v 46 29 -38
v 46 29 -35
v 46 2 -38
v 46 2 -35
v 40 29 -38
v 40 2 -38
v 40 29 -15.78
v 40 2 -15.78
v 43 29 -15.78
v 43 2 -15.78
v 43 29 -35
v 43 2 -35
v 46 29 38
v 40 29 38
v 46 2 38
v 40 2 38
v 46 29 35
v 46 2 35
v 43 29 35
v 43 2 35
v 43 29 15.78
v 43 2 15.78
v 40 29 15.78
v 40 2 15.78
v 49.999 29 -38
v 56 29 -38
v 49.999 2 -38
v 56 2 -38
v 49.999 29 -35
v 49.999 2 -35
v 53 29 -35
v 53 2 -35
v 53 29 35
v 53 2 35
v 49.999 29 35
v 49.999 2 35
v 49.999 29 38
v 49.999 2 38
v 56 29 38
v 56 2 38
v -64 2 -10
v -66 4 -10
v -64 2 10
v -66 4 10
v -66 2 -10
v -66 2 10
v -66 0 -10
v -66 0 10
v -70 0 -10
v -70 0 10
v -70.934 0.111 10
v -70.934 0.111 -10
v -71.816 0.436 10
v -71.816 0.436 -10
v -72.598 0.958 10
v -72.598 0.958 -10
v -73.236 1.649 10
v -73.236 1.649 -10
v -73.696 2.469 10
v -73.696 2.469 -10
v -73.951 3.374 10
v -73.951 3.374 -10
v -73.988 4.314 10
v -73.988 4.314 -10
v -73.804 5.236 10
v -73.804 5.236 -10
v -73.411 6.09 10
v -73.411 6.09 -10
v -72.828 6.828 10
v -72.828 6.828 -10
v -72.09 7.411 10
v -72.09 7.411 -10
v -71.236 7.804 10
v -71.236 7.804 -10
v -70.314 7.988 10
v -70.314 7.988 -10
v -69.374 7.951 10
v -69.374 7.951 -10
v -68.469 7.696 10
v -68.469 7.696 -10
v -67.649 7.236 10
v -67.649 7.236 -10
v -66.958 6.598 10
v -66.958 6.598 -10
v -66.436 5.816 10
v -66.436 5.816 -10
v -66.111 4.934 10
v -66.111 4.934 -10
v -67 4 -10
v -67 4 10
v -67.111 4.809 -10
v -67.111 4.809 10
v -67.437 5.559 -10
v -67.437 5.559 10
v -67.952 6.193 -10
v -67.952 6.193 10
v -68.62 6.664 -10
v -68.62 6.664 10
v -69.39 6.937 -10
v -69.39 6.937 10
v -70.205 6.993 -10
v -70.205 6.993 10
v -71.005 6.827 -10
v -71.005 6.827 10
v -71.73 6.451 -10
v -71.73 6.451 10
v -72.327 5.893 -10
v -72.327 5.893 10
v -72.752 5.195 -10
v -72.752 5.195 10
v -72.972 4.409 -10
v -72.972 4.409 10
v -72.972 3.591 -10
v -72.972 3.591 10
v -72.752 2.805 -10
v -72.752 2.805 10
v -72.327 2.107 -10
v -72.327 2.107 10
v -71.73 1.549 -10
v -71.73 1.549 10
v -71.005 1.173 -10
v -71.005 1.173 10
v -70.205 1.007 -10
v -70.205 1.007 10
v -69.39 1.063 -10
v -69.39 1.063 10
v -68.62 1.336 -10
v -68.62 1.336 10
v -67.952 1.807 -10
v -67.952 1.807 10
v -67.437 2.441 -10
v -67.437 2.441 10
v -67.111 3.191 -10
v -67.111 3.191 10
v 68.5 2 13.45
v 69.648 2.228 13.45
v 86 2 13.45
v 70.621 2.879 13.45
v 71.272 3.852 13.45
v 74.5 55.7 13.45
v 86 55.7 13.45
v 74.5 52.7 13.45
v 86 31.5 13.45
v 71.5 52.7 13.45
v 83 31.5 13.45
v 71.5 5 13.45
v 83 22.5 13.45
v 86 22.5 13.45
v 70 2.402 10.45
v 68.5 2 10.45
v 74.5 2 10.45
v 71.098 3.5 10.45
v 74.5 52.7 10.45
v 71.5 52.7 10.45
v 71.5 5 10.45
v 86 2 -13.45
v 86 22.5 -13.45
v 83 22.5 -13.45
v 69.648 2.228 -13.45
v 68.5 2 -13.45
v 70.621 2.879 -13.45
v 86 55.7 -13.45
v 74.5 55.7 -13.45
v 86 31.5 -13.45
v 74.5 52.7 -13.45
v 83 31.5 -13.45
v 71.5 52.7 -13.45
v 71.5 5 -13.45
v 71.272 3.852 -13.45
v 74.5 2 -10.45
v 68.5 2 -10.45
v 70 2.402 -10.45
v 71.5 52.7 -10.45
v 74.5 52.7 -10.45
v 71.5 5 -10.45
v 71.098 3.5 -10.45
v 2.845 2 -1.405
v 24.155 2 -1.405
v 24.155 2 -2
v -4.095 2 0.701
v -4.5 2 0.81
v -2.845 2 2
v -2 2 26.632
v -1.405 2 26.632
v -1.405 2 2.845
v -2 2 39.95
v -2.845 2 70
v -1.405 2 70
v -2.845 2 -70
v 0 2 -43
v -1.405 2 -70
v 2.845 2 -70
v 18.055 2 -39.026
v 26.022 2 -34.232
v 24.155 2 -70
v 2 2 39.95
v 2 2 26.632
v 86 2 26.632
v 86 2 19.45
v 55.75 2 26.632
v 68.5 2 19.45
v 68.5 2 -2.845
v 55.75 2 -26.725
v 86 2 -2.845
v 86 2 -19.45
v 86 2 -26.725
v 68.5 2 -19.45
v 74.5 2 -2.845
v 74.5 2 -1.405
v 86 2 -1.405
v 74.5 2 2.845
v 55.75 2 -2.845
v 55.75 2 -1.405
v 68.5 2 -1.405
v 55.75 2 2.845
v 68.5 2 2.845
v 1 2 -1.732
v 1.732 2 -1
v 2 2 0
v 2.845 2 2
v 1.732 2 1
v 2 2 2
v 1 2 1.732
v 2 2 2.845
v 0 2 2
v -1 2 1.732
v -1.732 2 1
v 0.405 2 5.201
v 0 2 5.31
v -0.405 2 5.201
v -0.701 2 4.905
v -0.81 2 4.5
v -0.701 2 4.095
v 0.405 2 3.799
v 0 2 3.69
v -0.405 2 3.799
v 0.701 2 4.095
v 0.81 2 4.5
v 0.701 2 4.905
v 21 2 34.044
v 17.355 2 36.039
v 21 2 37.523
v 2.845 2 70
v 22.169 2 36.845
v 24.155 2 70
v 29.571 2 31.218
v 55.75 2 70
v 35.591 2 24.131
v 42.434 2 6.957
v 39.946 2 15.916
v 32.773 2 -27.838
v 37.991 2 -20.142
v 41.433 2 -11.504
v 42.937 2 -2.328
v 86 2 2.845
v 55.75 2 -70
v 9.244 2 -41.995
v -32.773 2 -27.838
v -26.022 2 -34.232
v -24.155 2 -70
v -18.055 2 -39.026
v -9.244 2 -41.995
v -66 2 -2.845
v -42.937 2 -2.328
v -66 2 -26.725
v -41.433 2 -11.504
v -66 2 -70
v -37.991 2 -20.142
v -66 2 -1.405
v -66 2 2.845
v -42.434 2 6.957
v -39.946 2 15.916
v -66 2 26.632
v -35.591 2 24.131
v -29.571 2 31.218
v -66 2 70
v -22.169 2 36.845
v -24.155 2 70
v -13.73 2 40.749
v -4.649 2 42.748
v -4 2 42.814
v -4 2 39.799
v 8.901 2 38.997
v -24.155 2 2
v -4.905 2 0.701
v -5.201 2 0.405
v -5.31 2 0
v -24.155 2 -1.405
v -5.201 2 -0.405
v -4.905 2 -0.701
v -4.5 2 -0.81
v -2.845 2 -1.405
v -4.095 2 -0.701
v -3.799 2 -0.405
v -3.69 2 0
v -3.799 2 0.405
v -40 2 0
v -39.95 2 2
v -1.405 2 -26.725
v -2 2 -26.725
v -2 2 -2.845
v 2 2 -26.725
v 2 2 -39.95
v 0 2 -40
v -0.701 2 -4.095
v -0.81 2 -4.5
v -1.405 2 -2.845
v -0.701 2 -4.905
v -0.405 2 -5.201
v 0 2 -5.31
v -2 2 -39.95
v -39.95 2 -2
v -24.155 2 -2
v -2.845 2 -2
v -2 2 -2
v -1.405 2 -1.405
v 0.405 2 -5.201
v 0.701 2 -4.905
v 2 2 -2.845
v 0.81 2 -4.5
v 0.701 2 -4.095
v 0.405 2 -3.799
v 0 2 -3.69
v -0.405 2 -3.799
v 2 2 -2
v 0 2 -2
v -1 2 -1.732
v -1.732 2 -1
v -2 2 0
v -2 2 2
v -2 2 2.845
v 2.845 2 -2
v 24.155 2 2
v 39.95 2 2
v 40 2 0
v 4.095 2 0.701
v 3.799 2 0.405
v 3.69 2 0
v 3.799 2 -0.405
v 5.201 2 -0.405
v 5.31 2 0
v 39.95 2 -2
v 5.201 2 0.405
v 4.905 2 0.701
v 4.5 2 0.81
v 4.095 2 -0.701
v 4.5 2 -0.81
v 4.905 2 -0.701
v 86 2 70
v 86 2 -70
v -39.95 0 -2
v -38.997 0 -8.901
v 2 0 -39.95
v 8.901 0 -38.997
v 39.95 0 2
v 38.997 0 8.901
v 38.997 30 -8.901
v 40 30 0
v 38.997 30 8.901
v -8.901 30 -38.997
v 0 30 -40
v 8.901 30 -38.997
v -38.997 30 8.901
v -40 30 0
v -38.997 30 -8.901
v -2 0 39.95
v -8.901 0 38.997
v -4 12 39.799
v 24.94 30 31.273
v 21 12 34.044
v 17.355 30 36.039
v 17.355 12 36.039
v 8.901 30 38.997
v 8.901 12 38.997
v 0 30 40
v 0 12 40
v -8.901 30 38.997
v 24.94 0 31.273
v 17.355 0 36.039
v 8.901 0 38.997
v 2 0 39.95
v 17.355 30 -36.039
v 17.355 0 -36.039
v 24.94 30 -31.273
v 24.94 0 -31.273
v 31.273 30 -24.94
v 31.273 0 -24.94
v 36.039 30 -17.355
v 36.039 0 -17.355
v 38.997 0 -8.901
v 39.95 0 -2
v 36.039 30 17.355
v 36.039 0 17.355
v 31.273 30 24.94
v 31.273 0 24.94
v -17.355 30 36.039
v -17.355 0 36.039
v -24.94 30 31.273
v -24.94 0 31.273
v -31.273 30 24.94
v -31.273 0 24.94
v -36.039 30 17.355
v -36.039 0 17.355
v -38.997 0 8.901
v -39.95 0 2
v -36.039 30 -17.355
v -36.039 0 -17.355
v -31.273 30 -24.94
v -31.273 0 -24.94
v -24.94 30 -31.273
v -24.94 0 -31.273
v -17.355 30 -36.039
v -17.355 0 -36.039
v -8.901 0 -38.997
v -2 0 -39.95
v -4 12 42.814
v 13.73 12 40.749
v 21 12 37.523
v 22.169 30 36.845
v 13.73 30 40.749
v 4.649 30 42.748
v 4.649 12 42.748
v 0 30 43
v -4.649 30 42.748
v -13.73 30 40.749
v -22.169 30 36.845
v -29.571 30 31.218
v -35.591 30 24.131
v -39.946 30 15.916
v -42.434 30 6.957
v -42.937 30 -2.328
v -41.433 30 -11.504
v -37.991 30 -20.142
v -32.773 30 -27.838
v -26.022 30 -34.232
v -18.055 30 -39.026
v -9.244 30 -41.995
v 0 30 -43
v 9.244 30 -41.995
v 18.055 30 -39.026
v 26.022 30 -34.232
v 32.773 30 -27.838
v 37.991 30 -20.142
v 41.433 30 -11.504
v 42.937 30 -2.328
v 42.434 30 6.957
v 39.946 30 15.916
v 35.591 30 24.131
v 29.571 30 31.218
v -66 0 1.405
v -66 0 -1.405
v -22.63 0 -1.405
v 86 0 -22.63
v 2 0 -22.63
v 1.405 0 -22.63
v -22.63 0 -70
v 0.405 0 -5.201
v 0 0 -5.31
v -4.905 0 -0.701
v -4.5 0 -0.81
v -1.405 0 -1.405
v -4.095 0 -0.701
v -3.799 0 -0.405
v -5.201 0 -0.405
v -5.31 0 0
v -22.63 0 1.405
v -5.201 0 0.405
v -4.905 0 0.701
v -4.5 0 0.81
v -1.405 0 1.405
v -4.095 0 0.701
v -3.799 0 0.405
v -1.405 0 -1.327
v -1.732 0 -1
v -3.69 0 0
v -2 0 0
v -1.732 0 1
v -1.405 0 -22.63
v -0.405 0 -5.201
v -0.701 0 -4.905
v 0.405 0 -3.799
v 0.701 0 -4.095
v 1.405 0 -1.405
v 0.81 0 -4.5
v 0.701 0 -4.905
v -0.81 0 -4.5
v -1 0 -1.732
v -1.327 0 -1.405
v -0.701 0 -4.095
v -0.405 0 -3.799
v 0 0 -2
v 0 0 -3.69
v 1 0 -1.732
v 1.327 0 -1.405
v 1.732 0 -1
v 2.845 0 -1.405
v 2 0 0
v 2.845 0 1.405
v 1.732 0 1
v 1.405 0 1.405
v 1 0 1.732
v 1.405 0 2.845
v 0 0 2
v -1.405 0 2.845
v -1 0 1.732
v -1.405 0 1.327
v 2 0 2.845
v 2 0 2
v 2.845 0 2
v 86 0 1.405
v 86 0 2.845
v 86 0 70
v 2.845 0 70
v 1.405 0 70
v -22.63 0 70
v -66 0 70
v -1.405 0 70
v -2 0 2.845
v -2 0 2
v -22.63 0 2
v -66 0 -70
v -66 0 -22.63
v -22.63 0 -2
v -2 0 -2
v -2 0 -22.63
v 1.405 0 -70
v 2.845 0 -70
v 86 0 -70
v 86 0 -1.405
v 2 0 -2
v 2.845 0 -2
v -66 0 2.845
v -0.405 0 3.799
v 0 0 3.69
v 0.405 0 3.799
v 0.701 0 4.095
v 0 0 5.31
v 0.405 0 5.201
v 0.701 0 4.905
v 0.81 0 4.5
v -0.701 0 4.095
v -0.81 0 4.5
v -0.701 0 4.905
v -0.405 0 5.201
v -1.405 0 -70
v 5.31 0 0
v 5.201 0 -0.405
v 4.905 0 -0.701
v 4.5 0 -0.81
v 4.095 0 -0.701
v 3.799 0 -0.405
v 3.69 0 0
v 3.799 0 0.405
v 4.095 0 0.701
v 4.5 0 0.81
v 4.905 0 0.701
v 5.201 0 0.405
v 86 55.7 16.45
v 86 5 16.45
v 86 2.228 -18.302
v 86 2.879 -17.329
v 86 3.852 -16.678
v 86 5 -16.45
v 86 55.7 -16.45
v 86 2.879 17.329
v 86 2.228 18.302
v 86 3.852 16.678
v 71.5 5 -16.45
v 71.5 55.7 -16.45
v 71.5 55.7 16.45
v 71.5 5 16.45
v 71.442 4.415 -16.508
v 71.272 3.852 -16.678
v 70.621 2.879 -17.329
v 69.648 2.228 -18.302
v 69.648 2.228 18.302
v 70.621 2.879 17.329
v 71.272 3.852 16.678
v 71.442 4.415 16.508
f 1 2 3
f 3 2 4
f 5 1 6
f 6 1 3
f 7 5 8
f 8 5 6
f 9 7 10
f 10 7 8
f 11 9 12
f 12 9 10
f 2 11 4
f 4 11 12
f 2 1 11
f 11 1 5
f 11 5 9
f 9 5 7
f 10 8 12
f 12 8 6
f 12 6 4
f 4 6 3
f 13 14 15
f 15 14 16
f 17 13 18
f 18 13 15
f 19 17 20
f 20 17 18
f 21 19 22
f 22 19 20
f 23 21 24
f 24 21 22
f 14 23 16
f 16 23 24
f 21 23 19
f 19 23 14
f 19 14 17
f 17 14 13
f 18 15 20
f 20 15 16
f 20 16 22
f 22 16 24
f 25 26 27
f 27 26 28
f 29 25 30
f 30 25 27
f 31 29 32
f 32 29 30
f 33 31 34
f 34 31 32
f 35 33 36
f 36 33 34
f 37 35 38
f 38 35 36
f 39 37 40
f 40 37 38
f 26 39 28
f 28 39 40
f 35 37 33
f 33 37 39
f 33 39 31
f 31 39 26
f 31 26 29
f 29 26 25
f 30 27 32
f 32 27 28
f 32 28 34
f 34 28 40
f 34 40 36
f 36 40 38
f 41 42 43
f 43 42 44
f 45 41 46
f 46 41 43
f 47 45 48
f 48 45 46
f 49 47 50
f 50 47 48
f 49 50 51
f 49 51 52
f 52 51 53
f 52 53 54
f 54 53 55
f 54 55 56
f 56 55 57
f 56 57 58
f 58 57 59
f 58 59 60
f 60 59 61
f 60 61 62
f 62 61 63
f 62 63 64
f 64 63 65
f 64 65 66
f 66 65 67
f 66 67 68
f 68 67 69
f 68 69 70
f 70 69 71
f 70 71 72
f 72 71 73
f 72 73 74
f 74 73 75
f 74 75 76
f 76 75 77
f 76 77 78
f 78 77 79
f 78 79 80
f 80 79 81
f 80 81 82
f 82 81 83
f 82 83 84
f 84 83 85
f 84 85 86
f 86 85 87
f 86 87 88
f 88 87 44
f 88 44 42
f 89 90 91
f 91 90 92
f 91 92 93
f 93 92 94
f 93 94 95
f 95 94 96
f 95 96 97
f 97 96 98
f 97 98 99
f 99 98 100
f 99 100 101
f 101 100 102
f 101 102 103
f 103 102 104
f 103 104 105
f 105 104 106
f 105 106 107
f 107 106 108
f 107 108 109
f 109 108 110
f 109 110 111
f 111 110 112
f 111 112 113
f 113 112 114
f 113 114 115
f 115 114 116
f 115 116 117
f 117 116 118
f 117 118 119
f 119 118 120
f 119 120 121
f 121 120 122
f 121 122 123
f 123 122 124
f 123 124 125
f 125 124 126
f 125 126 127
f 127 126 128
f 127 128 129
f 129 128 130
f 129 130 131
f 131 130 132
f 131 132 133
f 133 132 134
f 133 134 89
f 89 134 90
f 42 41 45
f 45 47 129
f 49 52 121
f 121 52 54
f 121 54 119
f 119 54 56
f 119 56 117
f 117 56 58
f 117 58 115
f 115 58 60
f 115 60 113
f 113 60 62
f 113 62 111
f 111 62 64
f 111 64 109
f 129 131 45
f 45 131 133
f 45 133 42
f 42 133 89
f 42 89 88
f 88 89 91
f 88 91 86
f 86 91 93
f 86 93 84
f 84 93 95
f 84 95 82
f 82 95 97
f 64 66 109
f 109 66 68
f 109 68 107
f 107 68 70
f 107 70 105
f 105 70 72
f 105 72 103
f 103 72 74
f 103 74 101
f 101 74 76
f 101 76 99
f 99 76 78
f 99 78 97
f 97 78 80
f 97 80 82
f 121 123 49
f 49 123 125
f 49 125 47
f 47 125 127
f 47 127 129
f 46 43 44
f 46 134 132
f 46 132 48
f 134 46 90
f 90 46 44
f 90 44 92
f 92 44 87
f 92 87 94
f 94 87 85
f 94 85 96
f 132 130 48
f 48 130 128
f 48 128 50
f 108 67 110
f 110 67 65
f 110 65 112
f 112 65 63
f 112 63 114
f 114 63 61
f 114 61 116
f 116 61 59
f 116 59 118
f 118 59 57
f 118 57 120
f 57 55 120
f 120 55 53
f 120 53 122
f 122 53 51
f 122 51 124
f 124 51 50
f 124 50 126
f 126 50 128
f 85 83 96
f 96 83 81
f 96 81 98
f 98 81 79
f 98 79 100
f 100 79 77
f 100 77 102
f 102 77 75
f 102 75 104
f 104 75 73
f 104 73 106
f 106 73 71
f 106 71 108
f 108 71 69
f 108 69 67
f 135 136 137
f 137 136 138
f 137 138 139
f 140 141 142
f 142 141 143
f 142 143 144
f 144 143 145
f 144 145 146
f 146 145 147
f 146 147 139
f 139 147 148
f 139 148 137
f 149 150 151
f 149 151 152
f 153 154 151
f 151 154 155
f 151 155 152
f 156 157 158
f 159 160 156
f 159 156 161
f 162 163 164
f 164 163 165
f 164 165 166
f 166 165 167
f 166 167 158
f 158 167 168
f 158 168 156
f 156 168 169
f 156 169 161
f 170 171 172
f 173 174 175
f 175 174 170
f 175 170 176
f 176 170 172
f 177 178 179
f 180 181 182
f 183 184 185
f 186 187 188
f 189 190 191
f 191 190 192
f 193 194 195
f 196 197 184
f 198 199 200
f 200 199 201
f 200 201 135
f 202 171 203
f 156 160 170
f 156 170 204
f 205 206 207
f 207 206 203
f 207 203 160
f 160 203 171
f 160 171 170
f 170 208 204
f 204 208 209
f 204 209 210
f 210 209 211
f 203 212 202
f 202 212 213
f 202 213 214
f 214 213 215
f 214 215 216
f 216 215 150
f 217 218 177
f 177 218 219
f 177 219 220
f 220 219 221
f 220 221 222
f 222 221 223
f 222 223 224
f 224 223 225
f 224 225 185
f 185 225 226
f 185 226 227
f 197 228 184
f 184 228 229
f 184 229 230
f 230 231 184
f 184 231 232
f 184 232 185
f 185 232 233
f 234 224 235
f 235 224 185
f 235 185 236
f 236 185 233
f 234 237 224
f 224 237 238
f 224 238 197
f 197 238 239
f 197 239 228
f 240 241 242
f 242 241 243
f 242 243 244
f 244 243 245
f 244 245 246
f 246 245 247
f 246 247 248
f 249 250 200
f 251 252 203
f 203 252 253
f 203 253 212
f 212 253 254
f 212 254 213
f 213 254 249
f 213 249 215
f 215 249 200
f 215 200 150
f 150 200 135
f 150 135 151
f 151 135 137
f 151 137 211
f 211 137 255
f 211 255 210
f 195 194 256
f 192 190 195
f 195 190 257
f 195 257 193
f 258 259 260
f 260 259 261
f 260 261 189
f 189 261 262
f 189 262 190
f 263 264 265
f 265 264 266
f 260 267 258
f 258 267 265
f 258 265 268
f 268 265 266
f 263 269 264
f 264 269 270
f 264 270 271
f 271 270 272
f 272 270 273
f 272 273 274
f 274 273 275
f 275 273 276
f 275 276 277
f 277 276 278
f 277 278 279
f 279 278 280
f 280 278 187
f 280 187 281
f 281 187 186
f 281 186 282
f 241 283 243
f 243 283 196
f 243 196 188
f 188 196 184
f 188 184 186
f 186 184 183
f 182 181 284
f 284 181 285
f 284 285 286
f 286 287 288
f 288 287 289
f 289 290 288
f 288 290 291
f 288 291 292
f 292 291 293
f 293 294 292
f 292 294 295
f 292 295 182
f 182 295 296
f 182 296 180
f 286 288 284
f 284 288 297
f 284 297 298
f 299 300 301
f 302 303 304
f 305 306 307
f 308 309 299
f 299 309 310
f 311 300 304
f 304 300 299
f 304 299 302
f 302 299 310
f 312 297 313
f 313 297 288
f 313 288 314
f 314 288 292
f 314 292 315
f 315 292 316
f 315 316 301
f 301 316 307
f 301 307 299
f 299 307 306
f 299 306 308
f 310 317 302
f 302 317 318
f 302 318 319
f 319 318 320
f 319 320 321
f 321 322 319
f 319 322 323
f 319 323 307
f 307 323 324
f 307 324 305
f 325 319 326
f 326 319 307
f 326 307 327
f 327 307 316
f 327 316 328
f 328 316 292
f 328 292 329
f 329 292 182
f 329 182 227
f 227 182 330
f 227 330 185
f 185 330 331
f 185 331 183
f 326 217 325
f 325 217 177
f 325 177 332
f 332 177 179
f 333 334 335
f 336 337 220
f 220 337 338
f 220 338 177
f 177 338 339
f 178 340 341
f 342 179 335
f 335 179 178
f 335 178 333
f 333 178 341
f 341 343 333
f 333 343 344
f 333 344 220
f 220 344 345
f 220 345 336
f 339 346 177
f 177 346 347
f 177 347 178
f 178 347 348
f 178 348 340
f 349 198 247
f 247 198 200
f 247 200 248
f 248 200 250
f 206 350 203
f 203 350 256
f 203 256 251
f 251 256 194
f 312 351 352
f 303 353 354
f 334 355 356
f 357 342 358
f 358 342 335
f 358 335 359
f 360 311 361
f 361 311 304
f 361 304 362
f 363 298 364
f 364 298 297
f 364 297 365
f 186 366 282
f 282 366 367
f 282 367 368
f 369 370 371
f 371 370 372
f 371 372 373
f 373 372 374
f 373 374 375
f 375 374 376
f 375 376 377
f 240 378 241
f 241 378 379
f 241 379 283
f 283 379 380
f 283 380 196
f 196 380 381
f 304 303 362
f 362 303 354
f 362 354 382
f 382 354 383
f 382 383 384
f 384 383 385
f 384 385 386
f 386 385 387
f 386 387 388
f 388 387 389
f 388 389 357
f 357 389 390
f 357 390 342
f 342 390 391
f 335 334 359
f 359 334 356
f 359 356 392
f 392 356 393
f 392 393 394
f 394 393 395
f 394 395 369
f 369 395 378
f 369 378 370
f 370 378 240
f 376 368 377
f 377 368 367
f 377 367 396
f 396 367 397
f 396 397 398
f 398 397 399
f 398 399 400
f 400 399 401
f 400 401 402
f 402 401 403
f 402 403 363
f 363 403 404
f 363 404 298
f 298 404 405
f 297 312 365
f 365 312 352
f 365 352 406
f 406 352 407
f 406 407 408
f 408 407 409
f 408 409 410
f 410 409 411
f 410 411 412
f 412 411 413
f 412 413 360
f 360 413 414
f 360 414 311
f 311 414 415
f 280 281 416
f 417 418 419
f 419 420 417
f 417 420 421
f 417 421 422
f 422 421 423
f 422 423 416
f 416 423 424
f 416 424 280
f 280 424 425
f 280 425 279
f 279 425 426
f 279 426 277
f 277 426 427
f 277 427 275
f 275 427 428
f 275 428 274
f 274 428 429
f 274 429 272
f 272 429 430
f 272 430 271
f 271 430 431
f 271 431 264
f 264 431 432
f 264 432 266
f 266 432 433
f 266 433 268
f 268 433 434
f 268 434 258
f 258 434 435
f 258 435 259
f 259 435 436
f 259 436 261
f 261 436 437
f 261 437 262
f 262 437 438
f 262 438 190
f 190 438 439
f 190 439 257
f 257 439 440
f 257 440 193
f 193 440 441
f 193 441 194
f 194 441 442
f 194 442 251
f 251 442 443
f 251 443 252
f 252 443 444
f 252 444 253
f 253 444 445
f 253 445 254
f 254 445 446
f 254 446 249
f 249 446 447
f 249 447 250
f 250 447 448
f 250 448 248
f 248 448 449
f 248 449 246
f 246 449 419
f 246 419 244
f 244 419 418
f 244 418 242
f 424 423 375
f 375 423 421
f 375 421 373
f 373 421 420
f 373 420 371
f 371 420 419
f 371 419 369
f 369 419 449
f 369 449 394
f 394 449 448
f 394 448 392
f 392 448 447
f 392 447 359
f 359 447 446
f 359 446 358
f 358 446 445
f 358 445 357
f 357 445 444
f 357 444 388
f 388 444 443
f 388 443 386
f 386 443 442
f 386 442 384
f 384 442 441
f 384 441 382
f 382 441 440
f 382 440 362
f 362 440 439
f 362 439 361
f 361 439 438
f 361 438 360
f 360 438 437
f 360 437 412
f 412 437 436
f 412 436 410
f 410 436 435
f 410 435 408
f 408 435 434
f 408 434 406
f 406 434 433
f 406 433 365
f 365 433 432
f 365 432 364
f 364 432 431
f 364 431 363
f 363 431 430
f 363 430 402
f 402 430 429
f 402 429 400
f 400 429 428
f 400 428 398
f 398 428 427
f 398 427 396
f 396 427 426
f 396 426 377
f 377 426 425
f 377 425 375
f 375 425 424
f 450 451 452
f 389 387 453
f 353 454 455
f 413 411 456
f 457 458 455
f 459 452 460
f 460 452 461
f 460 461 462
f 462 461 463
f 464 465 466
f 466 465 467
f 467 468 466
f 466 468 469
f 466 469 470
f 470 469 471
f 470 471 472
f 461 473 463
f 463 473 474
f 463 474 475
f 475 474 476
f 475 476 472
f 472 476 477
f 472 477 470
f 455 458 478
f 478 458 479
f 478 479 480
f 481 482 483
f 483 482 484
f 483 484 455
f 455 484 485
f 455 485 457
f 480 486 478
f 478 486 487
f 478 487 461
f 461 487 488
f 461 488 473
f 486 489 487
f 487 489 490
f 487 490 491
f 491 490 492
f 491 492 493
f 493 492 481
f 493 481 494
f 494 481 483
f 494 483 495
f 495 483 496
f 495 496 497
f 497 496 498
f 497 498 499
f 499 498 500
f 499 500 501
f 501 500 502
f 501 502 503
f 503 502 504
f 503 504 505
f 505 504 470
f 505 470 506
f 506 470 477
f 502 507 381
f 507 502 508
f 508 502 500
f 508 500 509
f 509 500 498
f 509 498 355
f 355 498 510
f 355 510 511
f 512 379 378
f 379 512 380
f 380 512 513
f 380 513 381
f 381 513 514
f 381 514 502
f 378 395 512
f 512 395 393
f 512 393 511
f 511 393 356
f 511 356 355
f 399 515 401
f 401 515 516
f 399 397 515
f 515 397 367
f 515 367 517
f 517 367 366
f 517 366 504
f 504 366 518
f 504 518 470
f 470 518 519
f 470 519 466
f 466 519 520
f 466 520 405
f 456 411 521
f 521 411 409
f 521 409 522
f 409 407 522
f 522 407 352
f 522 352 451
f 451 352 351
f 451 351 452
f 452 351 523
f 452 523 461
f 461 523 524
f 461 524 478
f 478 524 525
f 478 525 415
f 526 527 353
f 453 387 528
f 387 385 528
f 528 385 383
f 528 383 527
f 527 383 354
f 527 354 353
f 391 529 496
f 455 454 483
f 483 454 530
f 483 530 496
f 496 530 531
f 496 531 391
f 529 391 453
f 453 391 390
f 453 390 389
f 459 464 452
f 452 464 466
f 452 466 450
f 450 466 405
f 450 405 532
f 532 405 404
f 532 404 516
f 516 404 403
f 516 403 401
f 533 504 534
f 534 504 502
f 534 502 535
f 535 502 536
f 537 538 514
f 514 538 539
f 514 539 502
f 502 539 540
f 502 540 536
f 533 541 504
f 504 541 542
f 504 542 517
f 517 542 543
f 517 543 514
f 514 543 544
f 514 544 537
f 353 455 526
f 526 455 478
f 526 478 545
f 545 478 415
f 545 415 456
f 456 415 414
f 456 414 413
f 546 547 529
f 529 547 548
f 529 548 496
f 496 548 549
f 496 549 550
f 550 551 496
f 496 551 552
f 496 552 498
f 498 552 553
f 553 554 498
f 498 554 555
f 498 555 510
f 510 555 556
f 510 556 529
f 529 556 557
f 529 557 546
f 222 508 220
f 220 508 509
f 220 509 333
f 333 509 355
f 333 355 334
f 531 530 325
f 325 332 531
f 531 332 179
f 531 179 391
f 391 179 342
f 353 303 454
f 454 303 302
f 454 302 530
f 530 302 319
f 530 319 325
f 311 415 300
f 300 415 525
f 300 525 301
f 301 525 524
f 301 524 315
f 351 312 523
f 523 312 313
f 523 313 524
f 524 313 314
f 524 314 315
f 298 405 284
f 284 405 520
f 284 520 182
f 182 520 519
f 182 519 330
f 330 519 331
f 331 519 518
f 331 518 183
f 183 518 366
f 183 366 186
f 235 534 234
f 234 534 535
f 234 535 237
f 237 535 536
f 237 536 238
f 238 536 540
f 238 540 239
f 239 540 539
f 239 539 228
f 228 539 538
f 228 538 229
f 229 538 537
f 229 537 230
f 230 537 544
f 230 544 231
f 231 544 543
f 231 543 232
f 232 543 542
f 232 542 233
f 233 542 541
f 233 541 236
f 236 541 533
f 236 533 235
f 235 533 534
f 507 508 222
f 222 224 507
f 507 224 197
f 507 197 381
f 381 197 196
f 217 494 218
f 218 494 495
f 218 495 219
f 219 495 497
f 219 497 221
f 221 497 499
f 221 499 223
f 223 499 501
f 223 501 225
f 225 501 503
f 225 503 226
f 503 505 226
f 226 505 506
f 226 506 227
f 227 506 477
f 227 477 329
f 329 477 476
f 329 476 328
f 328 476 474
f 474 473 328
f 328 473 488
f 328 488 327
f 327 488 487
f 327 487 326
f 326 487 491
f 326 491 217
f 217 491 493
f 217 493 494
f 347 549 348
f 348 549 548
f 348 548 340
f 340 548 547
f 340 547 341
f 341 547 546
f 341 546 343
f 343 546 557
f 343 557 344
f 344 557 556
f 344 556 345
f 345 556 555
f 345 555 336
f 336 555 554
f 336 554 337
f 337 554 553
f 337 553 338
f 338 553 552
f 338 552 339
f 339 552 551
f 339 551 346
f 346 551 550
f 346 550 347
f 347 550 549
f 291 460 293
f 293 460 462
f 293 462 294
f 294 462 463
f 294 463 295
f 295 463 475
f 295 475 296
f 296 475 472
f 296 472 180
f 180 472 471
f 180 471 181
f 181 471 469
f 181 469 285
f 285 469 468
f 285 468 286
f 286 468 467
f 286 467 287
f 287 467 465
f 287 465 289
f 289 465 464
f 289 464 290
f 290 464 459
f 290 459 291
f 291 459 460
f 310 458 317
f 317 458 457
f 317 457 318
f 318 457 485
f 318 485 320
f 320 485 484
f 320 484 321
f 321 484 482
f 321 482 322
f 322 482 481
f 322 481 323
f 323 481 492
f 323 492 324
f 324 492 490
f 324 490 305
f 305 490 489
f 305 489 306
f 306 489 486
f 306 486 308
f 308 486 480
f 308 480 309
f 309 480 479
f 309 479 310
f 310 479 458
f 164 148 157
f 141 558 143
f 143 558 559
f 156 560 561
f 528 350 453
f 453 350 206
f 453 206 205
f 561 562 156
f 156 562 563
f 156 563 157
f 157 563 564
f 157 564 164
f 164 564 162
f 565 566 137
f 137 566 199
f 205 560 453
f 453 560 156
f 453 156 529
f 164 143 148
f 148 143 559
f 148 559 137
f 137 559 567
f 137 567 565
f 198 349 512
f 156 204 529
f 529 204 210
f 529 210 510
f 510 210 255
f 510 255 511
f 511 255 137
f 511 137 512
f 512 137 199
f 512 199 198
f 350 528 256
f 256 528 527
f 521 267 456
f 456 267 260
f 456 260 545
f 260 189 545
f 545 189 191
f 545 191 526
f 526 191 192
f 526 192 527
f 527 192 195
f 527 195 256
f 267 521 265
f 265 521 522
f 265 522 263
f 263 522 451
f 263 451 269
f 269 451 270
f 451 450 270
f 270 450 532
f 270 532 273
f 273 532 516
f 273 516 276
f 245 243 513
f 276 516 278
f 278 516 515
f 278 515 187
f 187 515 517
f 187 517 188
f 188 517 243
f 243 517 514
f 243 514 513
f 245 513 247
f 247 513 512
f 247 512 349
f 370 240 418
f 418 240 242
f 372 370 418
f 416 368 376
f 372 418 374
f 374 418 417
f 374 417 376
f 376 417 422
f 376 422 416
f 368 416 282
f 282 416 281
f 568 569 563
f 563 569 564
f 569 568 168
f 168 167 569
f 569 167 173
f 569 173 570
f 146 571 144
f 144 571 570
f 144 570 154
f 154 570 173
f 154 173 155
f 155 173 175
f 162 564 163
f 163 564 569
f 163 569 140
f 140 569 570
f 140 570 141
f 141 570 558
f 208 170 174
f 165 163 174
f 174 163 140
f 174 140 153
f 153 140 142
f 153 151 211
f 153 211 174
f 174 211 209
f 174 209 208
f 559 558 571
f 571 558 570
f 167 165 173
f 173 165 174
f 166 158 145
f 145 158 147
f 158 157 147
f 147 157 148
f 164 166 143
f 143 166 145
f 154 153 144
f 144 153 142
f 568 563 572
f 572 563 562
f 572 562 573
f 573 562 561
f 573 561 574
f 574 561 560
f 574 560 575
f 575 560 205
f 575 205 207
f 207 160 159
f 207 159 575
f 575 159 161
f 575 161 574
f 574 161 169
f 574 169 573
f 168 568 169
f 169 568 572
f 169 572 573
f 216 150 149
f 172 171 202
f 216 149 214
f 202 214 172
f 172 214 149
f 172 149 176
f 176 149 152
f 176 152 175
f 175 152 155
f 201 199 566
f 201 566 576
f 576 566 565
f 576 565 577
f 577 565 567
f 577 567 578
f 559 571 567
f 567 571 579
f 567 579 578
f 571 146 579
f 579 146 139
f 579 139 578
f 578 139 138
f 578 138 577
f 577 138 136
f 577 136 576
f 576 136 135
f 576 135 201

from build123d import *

# Parameters (mm, degrees)
CROQUIS1_R                 = 43
CROQUIS1_R_2               = 40
SALIENTE_EXTRUIR1_DEPTH    = 30
CROQUIS3_R                 = 0.81
CROQUIS3_R_2               = 2
SALIENTE_EXTRUIR2_DEPTH    = 2
CROQUIS4_W                 = 152
CROQUIS4_H                 = 140
CROQUIS4_R                 = 43
SALIENTE_EXTRUIR3_DEPTH    = 2
SALIENTE_EXTRUIR17_DEPTH   = 27
SALIENTE_EXTRUIR17_2_DEPTH = 27
SALIENTE_EXTRUIR17_3_DEPTH = 27
CORTAR_EXTRUIR1_REACH      = 169.021
CORTAR_EXTRUIR1_END_RADIUS = 40
CROQUIS15_W                = 25
CROQUIS15_H                = 10
SALIENTE_EXTRUIR19_START   = -60
CROQUIS18_R                = 4
CROQUIS18_R_2              = 3
SALIENTE_EXTRUIR19_DEPTH   = 20
CROQUIS19_W                = 14.5
CROQUIS19_H                = 3
CROQUIS19_W_2              = 3
CROQUIS19_H_2              = 20.9
SALIENTE_EXTRUIR20_DEPTH   = 53.7
SALIENTE_EXTRUIR21_REACH   = 134.145
CROQUIS20_W                = 3
CROQUIS20_H                = 3
CROQUIS20_H_2              = 9
SALIENTE_EXTRUIR22_START   = 23.9
CROQUIS20_2_W              = 3
CROQUIS20_2_H              = 3
SALIENTE_EXTRUIR22_DEPTH   = 3
REDONDEO1_R                = 3


with BuildPart() as part:
    # Croquis1 → Saliente-Extruir1 (new body)
    with BuildSketch(Plane(origin=(0, 0, 0), x_dir=(1, 0, 0), z_dir=(0, 1, 0))):
        with Locations(Location((0, 0, 0), (0, 0, 270))):
            Circle(CROQUIS1_R)
        with Locations(Location((0, 0, 0), (0, 0, 270))):
            Circle(CROQUIS1_R_2, mode=Mode.SUBTRACT)
    extrude(amount=SALIENTE_EXTRUIR1_DEPTH)

    # Croquis3 → Saliente-Extruir2 (add)
    with BuildSketch(Plane(origin=(0, 0, 0), x_dir=(1, 0, 0), z_dir=(0, 1, 0))):
        with BuildLine():
            Line((-2, 39.949968711), (-2, 2))
            Line((-2, 2), (-39.949968711, 2))
            ThreePointArc((-39.949968711, 2), (-40, 0), (-39.949968711, -2))
            Line((-39.949968711, -2), (-2, -2))
            Line((-2, -2), (-2, -39.949968711))
            ThreePointArc((-2, -39.949968711), (0, -40), (2, -39.949968711))
            Line((2, -39.949968711), (2, -2))
            Line((2, -2), (39.949968711, -2))
            ThreePointArc((39.949968711, -2), (39.987490222, -1.000312842), (40, 0))
            ThreePointArc((40, 0), (39.987490222, 1.000312842), (39.949968711, 2))
            Line((39.949968711, 2), (2, 2))
            Line((2, 2), (2, 39.949968711))
            ThreePointArc((2, 39.949968711), (0, 40), (-2, 39.949968711))
        make_face()
        with Locations(Location((0, -4.5, 0), (0, 0, 270))):
            Circle(CROQUIS3_R, mode=Mode.SUBTRACT)
        with Locations(Location((-4.5, 0, 0), (0, 0, 270))):
            Circle(CROQUIS3_R, mode=Mode.SUBTRACT)
        with Locations(Location((0, 0, 0), (0, 0, 270))):
            Circle(CROQUIS3_R_2, mode=Mode.SUBTRACT)
        with Locations(Location((4.5, 0, 0), (0, 0, 270))):
            Circle(CROQUIS3_R, mode=Mode.SUBTRACT)
        with Locations(Location((0, 4.5, 0), (0, 0, 270))):
            Circle(CROQUIS3_R, mode=Mode.SUBTRACT)
    extrude(amount=SALIENTE_EXTRUIR2_DEPTH)

    # Croquis4 → Saliente-Extruir3 (add)
    with BuildSketch(Plane(origin=(0, 0, 0), x_dir=(1, 0, 0), z_dir=(0, 1, 0))):
        with Locations((10, 0)):
            Rectangle(CROQUIS4_W, CROQUIS4_H)
        with Locations(Location((0, 0, 0), (0, 0, 90))):
            Circle(CROQUIS4_R, mode=Mode.SUBTRACT)
    extrude(amount=SALIENTE_EXTRUIR3_DEPTH)

    # Cortar-Extruir1: up to this cylinder (the profile starts outside it)
    cortar_extruir1_end = Plane(origin=(0, 7, 0), z_dir=(0, -1, 0)) * Cylinder(CORTAR_EXTRUIR1_END_RADIUS, 419.042, mode=Mode.PRIVATE)
    # Croquis15 → Cortar-Extruir1 (cut, up to the surface)
    with BuildSketch(Plane.XY.offset(70), mode=Mode.PRIVATE) as cortar_extruir1_sk1:
        with Locations((8.5, 7)):
            Rectangle(CROQUIS15_W, CROQUIS15_H)
    cortar_extruir1_tool1 = extrude(cortar_extruir1_sk1.sketch, amount=-CORTAR_EXTRUIR1_REACH, mode=Mode.PRIVATE) - cortar_extruir1_end
    add(cortar_extruir1_tool1.solids().sort_by_distance((8.5, 7, 70))[0], mode=Mode.SUBTRACT)

    # Croquis19 → Saliente-Extruir20 (add)
    with BuildSketch(Plane(origin=(0, 2, 0), x_dir=(1, 0, 0), z_dir=(0, 1, 0))):
        with Locations((78.75, 14.95)):
            Rectangle(CROQUIS19_W, CROQUIS19_H)
        with Locations((78.75, -14.95)):
            Rectangle(CROQUIS19_W, CROQUIS19_H)
        with Locations((73, 0)):
            Rectangle(CROQUIS19_W_2, CROQUIS19_H_2)
    extrude(amount=SALIENTE_EXTRUIR20_DEPTH)

    # Croquis20 → Saliente-Extruir21 (add, up to next)
    with BuildSketch(Plane.XY.offset(-13.45), mode=Mode.PRIVATE) as saliente_extruir21_sk1:
        with Locations((73, 54.2)):
            Rectangle(CROQUIS20_W, CROQUIS20_H)
    saliente_extruir21_tool1 = extrude(saliente_extruir21_sk1.sketch, amount=SALIENTE_EXTRUIR21_REACH, mode=Mode.PRIVATE) - part.part
    # Croquis20 → Saliente-Extruir21 (add, up to next)
    with BuildSketch(Plane.XY.offset(-13.45), mode=Mode.PRIVATE) as saliente_extruir21_sk2:
        with Locations((84.5, 27)):
            Rectangle(CROQUIS20_W, CROQUIS20_H_2)
    saliente_extruir21_tool2 = extrude(saliente_extruir21_sk2.sketch, amount=SALIENTE_EXTRUIR21_REACH, mode=Mode.PRIVATE) - part.part
    add(saliente_extruir21_tool1.solids().sort_by_distance((73, 54.2, -13.45))[0])
    add(saliente_extruir21_tool2.solids().sort_by_distance((84.5, 27, -13.45))[0])

    # Croquis20<2> → Saliente-Extruir22 (add)
    with BuildSketch(Plane.XY.offset(-13.45).offset(SALIENTE_EXTRUIR22_START)):
        with Locations((73, 54.2)):
            Rectangle(CROQUIS20_2_W, CROQUIS20_2_H)
    extrude(amount=SALIENTE_EXTRUIR22_DEPTH)

    # Redondeo1
    redondeo1_edges = [part.edges().sort_by_distance(p)[0] for p in [
        (78.75, 2, -16.45),
        (71.5, 2, -14.95),
        (71.5, 2, 0),
        (71.5, 2, 14.95),
        (78.75, 2, 16.45),
    ]]
    fillet(redondeo1_edges, radius=REDONDEO1_R)


with BuildPart() as body_2:
    # Croquis14 → Saliente-Extruir17 (new body)
    with BuildSketch(Plane(origin=(0, 2, 0), x_dir=(1, 0, 0), z_dir=(0, 1, 0))):
        Polygon((43, -15.779733838), (40, -15.779733838), (40, -38), (46, -38), (46, -35), (43, -35), align=None)
    extrude(amount=SALIENTE_EXTRUIR17_DEPTH)


with BuildPart() as body_3:
    # Croquis14 → Saliente-Extruir17 2 (new body)
    with BuildSketch(Plane(origin=(0, 2, 0), x_dir=(1, 0, 0), z_dir=(0, 1, 0))):
        Polygon((56, -38), (56, 38), (49.998935995, 38), (49.998935995, 35), (53, 35), (53, -35), (49.998935995, -35), (49.998935995, -38), align=None)
    extrude(amount=SALIENTE_EXTRUIR17_2_DEPTH)


with BuildPart() as body_4:
    # Croquis14 → Saliente-Extruir17 3 (new body)
    with BuildSketch(Plane(origin=(0, 2, 0), x_dir=(1, 0, 0), z_dir=(0, 1, 0))):
        Polygon((40, 38), (40, 15.779733838), (43, 15.779733838), (43, 35), (46, 35), (46, 38), align=None)
    extrude(amount=SALIENTE_EXTRUIR17_3_DEPTH)


with BuildPart() as body_5:
    # Croquis18 → Saliente-Extruir19 (new body)
    # profile 1 of 2: a face of its own
    with BuildSketch(Plane.XY.offset(70).offset(SALIENTE_EXTRUIR19_START)):
        with BuildLine():
            Line((-66, 0), (-66, 2))
            Line((-66, 2), (-64, 2))
            Line((-64, 2), (-66, 4))
            ThreePointArc((-66, 4), (-67.171572875, 1.171572875), (-70, 0))
            Line((-70, 0), (-66, 0))
        make_face()
    # profile 2 of 2: a face of its own
    with BuildSketch(Plane.XY.offset(70).offset(SALIENTE_EXTRUIR19_START)):
        with Locations((-70, 4)):
            Circle(CROQUIS18_R)
        with Locations((-70, 4)):
            Circle(CROQUIS18_R_2, mode=Mode.SUBTRACT)
    extrude(amount=-SALIENTE_EXTRUIR19_DEPTH)


solid = Compound([part.part, body_2.part, body_3.part, body_4.part, body_5.part])
